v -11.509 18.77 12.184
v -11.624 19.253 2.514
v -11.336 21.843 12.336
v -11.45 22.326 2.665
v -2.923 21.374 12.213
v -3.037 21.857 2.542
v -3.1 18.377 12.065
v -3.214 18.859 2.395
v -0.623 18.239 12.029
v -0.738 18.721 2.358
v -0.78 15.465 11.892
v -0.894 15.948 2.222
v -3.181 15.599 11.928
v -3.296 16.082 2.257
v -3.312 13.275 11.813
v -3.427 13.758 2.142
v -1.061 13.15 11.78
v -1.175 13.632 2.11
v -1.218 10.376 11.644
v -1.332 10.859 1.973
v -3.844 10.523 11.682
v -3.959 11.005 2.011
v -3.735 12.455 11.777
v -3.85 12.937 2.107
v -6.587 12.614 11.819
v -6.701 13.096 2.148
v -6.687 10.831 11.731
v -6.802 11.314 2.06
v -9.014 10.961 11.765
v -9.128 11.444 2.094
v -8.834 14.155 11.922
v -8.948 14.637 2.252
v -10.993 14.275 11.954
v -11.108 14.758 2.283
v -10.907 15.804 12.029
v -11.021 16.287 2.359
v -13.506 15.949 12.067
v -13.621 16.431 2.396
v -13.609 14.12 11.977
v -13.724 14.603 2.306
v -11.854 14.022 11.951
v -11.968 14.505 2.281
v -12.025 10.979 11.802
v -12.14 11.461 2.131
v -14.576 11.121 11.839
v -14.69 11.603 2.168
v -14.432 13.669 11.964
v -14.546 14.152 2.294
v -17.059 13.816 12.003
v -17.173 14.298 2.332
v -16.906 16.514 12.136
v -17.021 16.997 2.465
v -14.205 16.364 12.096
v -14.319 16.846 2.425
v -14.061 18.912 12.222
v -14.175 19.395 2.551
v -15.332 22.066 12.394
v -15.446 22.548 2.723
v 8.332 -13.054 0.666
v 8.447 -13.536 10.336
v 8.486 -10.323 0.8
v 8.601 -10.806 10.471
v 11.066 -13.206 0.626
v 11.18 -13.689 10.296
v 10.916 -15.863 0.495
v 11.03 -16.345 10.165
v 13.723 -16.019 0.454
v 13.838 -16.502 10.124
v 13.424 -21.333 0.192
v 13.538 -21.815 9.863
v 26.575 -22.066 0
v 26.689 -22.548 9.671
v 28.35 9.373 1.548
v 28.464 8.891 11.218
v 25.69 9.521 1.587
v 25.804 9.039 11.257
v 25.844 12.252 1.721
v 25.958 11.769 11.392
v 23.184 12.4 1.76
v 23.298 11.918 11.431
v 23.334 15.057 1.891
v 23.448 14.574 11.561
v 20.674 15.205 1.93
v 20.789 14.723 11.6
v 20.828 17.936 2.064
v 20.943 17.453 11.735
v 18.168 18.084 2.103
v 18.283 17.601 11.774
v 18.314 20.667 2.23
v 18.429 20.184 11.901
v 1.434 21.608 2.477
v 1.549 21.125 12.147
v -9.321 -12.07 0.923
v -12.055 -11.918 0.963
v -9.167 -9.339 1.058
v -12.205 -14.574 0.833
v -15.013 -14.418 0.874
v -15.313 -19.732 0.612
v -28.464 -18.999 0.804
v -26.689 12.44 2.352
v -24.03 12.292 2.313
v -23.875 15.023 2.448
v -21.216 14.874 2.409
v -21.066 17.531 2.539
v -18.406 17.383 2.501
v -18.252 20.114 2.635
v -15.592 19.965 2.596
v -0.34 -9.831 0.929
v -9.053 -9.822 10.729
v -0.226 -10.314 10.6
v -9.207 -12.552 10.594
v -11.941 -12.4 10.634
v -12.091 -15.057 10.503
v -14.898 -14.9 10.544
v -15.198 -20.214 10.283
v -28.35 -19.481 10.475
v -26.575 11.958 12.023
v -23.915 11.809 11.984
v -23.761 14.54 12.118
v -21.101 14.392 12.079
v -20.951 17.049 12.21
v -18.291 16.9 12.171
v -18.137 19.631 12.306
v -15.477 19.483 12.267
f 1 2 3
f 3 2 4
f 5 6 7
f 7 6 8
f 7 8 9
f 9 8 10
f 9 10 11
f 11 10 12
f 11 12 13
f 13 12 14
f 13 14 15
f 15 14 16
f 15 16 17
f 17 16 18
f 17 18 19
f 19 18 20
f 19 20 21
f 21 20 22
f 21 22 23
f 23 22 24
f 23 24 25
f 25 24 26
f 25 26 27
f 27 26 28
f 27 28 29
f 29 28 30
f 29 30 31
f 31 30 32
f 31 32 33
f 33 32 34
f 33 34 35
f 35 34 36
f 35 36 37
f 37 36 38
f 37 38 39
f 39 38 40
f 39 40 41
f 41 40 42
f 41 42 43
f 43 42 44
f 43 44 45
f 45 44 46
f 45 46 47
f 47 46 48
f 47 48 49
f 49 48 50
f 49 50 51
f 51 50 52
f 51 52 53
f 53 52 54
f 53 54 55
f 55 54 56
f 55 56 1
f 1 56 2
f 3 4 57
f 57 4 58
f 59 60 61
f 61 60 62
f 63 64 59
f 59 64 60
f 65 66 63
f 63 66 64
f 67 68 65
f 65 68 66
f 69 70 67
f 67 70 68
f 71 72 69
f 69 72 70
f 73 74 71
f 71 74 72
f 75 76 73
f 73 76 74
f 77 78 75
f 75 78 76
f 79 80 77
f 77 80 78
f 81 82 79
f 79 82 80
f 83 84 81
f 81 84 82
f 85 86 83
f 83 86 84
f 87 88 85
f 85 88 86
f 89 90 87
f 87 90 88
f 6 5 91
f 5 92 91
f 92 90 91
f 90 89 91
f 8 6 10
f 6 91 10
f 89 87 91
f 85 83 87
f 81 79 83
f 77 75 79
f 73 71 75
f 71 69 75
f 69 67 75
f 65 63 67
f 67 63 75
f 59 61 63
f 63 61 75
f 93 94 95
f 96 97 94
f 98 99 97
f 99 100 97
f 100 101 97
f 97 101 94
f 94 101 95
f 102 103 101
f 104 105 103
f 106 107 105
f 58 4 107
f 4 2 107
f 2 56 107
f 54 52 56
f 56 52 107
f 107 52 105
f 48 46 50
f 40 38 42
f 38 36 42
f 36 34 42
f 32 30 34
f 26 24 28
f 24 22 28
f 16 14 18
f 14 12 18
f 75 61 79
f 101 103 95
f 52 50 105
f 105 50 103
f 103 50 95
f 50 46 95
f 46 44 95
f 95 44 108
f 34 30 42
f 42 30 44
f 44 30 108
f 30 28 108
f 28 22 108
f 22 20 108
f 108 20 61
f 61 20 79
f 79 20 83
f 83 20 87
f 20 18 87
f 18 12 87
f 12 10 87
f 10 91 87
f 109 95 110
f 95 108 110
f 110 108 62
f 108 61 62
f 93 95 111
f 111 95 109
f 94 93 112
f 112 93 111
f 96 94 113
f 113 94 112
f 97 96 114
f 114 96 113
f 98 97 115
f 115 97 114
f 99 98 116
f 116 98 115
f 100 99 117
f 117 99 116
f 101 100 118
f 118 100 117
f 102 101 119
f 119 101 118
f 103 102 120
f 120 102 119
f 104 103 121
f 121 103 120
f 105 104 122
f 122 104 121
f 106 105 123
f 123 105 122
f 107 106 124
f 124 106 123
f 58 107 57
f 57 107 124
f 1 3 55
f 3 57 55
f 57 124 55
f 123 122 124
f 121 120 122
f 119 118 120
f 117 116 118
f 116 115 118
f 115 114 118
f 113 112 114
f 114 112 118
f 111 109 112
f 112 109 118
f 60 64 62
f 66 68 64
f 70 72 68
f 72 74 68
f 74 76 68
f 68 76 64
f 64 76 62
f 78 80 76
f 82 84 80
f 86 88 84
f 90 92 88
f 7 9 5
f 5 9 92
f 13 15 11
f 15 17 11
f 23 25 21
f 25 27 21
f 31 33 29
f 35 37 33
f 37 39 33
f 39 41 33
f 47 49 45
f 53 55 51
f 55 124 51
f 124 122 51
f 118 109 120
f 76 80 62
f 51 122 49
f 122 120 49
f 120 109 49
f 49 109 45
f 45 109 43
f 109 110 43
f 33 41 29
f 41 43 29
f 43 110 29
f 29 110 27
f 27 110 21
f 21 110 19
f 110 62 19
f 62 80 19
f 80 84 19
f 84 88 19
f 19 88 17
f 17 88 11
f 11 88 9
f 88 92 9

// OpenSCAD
module Default() {
	polyhedron(
		points=[
			[-11.50916, 18.77022, 12.18432],
			[-11.62358, 19.25276, 2.513634],
			[-11.3357, 21.84316, 12.33559],
			[-11.3357, 21.84316, 12.33559],
			[-11.62358, 19.25276, 2.513634],
			[-11.45013, 22.3257, 2.664909],
			[-2.922625, 21.37432, 12.21266],
			[-3.037051, 21.85686, 2.54197],
			[-3.099726, 18.37678, 12.06519],
			[-3.099726, 18.37678, 12.06519],
			[-3.037051, 21.85686, 2.54197],
			[-3.214152, 18.85932, 2.394501],
			[-3.099726, 18.37678, 12.06519],
			[-3.214152, 18.85932, 2.394501],
			[-0.6231963, 18.23877, 12.029],
			[-0.6231963, 18.23877, 12.029],
			[-3.214152, 18.85932, 2.394501],
			[-0.737622, 18.72131, 2.358312],
			[-0.6231963, 18.23877, 12.029],
			[-0.737622, 18.72131, 2.358312],
			[-0.7797541, 15.46522, 11.89246],
			[-0.7797541, 15.46522, 11.89246],
			[-0.737622, 18.72131, 2.358312],
			[-0.8941798, 15.94775, 2.221773],
			[-0.7797541, 15.46522, 11.89246],
			[-0.8941798, 15.94775, 2.221773],
			[-3.181229, 15.59905, 11.92755],
			[-3.181229, 15.59905, 11.92755],
			[-0.8941798, 15.94775, 2.221773],
			[-3.295654, 16.08158, 2.256864],
			[-3.181229, 15.59905, 11.92755],
			[-3.295654, 16.08158, 2.256864],
			[-3.312399, 13.27526, 11.81315],
			[-3.312399, 13.27526, 11.81315],
			[-3.295654, 16.08158, 2.256864],
			[-3.426824, 13.75779, 2.142467],
			[-3.312399, 13.27526, 11.81315],
			[-3.426824, 13.75779, 2.142467],
			[-1.06102, 13.1498, 11.78025],
			[-1.06102, 13.1498, 11.78025],
			[-3.426824, 13.75779, 2.142467],
			[-1.175446, 13.63233, 2.109569],
			[-1.06102, 13.1498, 11.78025],
			[-1.175446, 13.63233, 2.109569],
			[-1.217578, 10.37624, 11.64372],
			[-1.217578, 10.37624, 11.64372],
			[-1.175446, 13.63233, 2.109569],
			[-1.332004, 10.85878, 1.973031],
			[-1.217578, 10.37624, 11.64372],
			[-1.332004, 10.85878, 1.973031],
			[-3.844204, 10.52262, 11.6821],
			[-3.844204, 10.52262, 11.6821],
			[-1.332004, 10.85878, 1.973031],
			[-3.95863, 11.00515, 2.011413],
			[-3.844204, 10.52262, 11.6821],
			[-3.95863, 11.00515, 2.011413],
			[-3.735142, 12.45474, 11.77721],
			[-3.735142, 12.45474, 11.77721],
			[-3.95863, 11.00515, 2.011413],
			[-3.849568, 12.93727, 2.106529],
			[-3.735142, 12.45474, 11.77721],
			[-3.849568, 12.93727, 2.106529],
			[-6.586897, 12.61366, 11.81889],
			[-6.586897, 12.61366, 11.81889],
			[-3.849568, 12.93727, 2.106529],
			[-6.701323, 13.09619, 2.148201],
			[-6.586897, 12.61366, 11.81889],
			[-6.701323, 13.09619, 2.148201],
			[-6.687496, 10.83147, 11.73115],
			[-6.687496, 10.83147, 11.73115],
			[-6.701323, 13.09619, 2.148201],
			[-6.801921, 11.314, 2.060466],
			[-6.687496, 10.83147, 11.73115],
			[-6.801921, 11.314, 2.060466],
			[-9.01393, 10.96111, 11.76515],
			[-9.01393, 10.96111, 11.76515],
			[-6.801921, 11.314, 2.060466],
			[-9.128356, 11.44365, 2.094462],
			[-9.01393, 10.96111, 11.76515],
			[-9.128356, 11.44365, 2.094462],
			[-8.833666, 14.15463, 11.92236],
			[-8.833666, 14.15463, 11.92236],
			[-9.128356, 11.44365, 2.094462],
			[-8.948092, 14.63717, 2.251675],
			[-8.833666, 14.15463, 11.92236],
			[-8.948092, 14.63717, 2.251675],
			[-10.99328, 14.27498, 11.95392],
			[-10.99328, 14.27498, 11.95392],
			[-8.948092, 14.63717, 2.251675],
			[-11.1077, 14.75752, 2.283233],
			[-10.99328, 14.27498, 11.95392],
			[-11.1077, 14.75752, 2.283233],
			[-10.90697, 15.80399, 12.02919],
			[-10.90697, 15.80399, 12.02919],
			[-11.1077, 14.75752, 2.283233],
			[-11.0214, 16.28653, 2.358504],
			[-10.90697, 15.80399, 12.02919],
			[-11.0214, 16.28653, 2.358504],
			[-13.50623, 15.94884, 12.06717],
			[-13.50623, 15.94884, 12.06717],
			[-11.0214, 16.28653, 2.358504],
			[-13.62066, 16.43138, 2.396487],
			[-13.50623, 15.94884, 12.06717],
			[-13.62066, 16.43138, 2.396487],
			[-13.60946, 14.11998, 11.97714],
			[-13.60946, 14.11998, 11.97714],
			[-13.62066, 16.43138, 2.396487],
			[-13.72389, 14.60252, 2.306454],
			[-13.60946, 14.11998, 11.97714],
			[-13.72389, 14.60252, 2.306454],
			[-11.85356, 14.02213, 11.95148],
			[-11.85356, 14.02213, 11.95148],
			[-13.72389, 14.60252, 2.306454],
			[-11.96799, 14.50467, 2.280796],
			[-11.85356, 14.02213, 11.95148],
			[-11.96799, 14.50467, 2.280796],
			[-12.02536, 10.97853, 11.80165],
			[-12.02536, 10.97853, 11.80165],
			[-11.96799, 14.50467, 2.280796],
			[-12.13979, 11.46107, 2.130963],
			[-12.02536, 10.97853, 11.80165],
			[-12.13979, 11.46107, 2.130963],
			[-14.57583, 11.12066, 11.83892],
			[-14.57583, 11.12066, 11.83892],
			[-12.13979, 11.46107, 2.130963],
			[-14.69026, 11.6032, 2.168232],
			[-14.57583, 11.12066, 11.83892],
			[-14.69026, 11.6032, 2.168232],
			[-14.43197, 13.66933, 11.96438],
			[-14.43197, 13.66933, 11.96438],
			[-14.69026, 11.6032, 2.168232],
			[-14.54639, 14.15187, 2.2937],
			[-14.43197, 13.66933, 11.96438],
			[-14.54639, 14.15187, 2.2937],
			[-17.05859, 13.81571, 12.00277],
			[-17.05859, 13.81571, 12.00277],
			[-14.54639, 14.15187, 2.2937],
			[-17.17302, 14.29824, 2.332083],
			[-17.05859, 13.81571, 12.00277],
			[-17.17302, 14.29824, 2.332083],
			[-16.90626, 16.51431, 12.13562],
			[-16.90626, 16.51431, 12.13562],
			[-17.17302, 14.29824, 2.332083],
			[-17.02069, 16.99684, 2.464931],
			[-16.90626, 16.51431, 12.13562],
			[-17.02069, 16.99684, 2.464931],
			[-14.20459, 16.36375, 12.09614],
			[-14.20459, 16.36375, 12.09614],
			[-17.02069, 16.99684, 2.464931],
			[-14.31902, 16.84628, 2.425452],
			[-14.20459, 16.36375, 12.09614],
			[-14.31902, 16.84628, 2.425452],
			[-14.06073, 18.91242, 12.2216],
			[-14.06073, 18.91242, 12.2216],
			[-14.31902, 16.84628, 2.425452],
			[-14.17515, 19.39495, 2.55092],
			[-14.06073, 18.91242, 12.2216],
			[-14.17515, 19.39495, 2.55092],
			[-11.50916, 18.77022, 12.18432],
			[-11.50916, 18.77022, 12.18432],
			[-14.17515, 19.39495, 2.55092],
			[-11.62358, 19.25276, 2.513634],
			[-11.3357, 21.84316, 12.33559],
			[-11.45013, 22.3257, 2.664909],
			[-15.33155, 22.06584, 12.39399],
			[-15.33155, 22.06584, 12.39399],
			[-11.45013, 22.3257, 2.664909],
			[-15.44597, 22.54837, 2.7233],
			[8.332091, -13.05371, 0.6655284],
			[8.446517, -13.53625, 10.33621],
			[8.486225, -10.3231, 0.7999527],
			[8.486225, -10.3231, 0.7999527],
			[8.446517, -13.53625, 10.33621],
			[8.600651, -10.80564, 10.47064],
			[11.06582, -13.20605, 0.6255808],
			[11.18025, -13.68859, 10.29627],
			[8.332091, -13.05371, 0.6655284],
			[8.332091, -13.05371, 0.6655284],
			[11.18025, -13.68859, 10.29627],
			[8.446517, -13.53625, 10.33621],
			[10.91586, -15.86287, 0.4947891],
			[11.03028, -16.3454, 10.16547],
			[11.06582, -13.20605, 0.6255808],
			[11.06582, -13.20605, 0.6255808],
			[11.03028, -16.3454, 10.16547],
			[11.18025, -13.68859, 10.29627],
			[13.72346, -16.01933, 0.4537621],
			[13.83788, -16.50186, 10.12445],
			[10.91586, -15.86287, 0.4947891],
			[10.91586, -15.86287, 0.4947891],
			[13.83788, -16.50186, 10.12445],
			[11.03028, -16.3454, 10.16547],
			[13.42352, -21.33295, 0.1921795],
			[13.53795, -21.81548, 9.862865],
			[13.72346, -16.01933, 0.4537621],
			[13.72346, -16.01933, 0.4537621],
			[13.53795, -21.81548, 9.862865],
			[13.83788, -16.50186, 10.12445],
			[26.57495, -22.06584, 0.0],
			[26.68937, -22.54837, 9.670686],
			[13.42352, -21.33295, 0.1921795],
			[13.42352, -21.33295, 0.1921795],
			[26.68937, -22.54837, 9.670686],
			[13.53795, -21.81548, 9.862865],
			[28.34957, 9.37307, 1.547698],
			[28.46399, 8.890535, 11.21838],
			[26.57495, -22.06584, 0.0],
			[26.57495, -22.06584, 0.0],
			[28.46399, 8.890535, 11.21838],
			[26.68937, -22.54837, 9.670686],
			[25.68973, 9.521295, 1.586566],
			[25.80416, 9.038761, 11.25725],
			[28.34957, 9.37307, 1.547698],
			[28.34957, 9.37307, 1.547698],
			[25.80416, 9.038761, 11.25725],
			[28.46399, 8.890535, 11.21838],
			[25.84387, 12.25191, 1.72099],
			[25.95829, 11.76937, 11.39168],
			[25.68973, 9.521295, 1.586566],
			[25.68973, 9.521295, 1.586566],
			[25.95829, 11.76937, 11.39168],
			[25.80416, 9.038761, 11.25725],
			[23.18403, 12.40013, 1.759858],
			[23.29846, 11.9176, 11.43054],
			[25.84387, 12.25191, 1.72099],
			[25.84387, 12.25191, 1.72099],
			[23.29846, 11.9176, 11.43054],
			[25.95829, 11.76937, 11.39168],
			[23.334, 15.05694, 1.890649],
			[23.44842, 14.5744, 11.56133],
			[23.18403, 12.40013, 1.759858],
			[23.18403, 12.40013, 1.759858],
			[23.44842, 14.5744, 11.56133],
			[23.29846, 11.9176, 11.43054],
			[20.67416, 15.20516, 1.929517],
			[20.78859, 14.72263, 11.6002],
			[23.334, 15.05694, 1.890649],
			[23.334, 15.05694, 1.890649],
			[20.78859, 14.72263, 11.6002],
			[23.44842, 14.5744, 11.56133],
			[20.8283, 17.93577, 2.063941],
			[20.94272, 17.45324, 11.73463],
			[20.67416, 15.20516, 1.929517],
			[20.67416, 15.20516, 1.929517],
			[20.94272, 17.45324, 11.73463],
			[20.78859, 14.72263, 11.6002],
			[18.16845, 18.084, 2.102809],
			[18.28287, 17.60147, 11.7735],
			[20.8283, 17.93577, 2.063941],
			[20.8283, 17.93577, 2.063941],
			[18.28287, 17.60147, 11.7735],
			[20.94272, 17.45324, 11.73463],
			[18.31425, 20.66701, 2.229968],
			[18.42867, 20.18447, 11.90065],
			[18.16845, 18.084, 2.102809],
			[18.16845, 18.084, 2.102809],
			[18.42867, 20.18447, 11.90065],
			[18.28287, 17.60147, 11.7735],
			[-3.037051, 21.85686, 2.54197],
			[-2.922625, 21.37432, 12.21266],
			[1.434143, 21.60769, 2.476634],
			[-2.922625, 21.37432, 12.21266],
			[1.548568, 21.12516, 12.14732],
			[1.434143, 21.60769, 2.476634],
			[1.548568, 21.12516, 12.14732],
			[18.42867, 20.18447, 11.90065],
			[1.434143, 21.60769, 2.476634],
			[18.42867, 20.18447, 11.90065],
			[18.31425, 20.66701, 2.229968],
			[1.434143, 21.60769, 2.476634],
			[-3.214152, 18.85932, 2.394501],
			[-3.037051, 21.85686, 2.54197],
			[-0.737622, 18.72131, 2.358312],
			[-3.037051, 21.85686, 2.54197],
			[1.434143, 21.60769, 2.476634],
			[-0.737622, 18.72131, 2.358312],
			[18.31425, 20.66701, 2.229968],
			[18.16845, 18.084, 2.102809],
			[1.434143, 21.60769, 2.476634],
			[20.8283, 17.93577, 2.063941],
			[20.67416, 15.20516, 1.929517],
			[18.16845, 18.084, 2.102809],
			[23.334, 15.05694, 1.890649],
			[23.18403, 12.40013, 1.759858],
			[20.67416, 15.20516, 1.929517],
			[25.84387, 12.25191, 1.72099],
			[25.68973, 9.521295, 1.586566],
			[23.18403, 12.40013, 1.759858],
			[28.34957, 9.37307, 1.547698],
			[26.57495, -22.06584, 0.0],
			[25.68973, 9.521295, 1.586566],
			[26.57495, -22.06584, 0.0],
			[13.42352, -21.33295, 0.1921795],
			[25.68973, 9.521295, 1.586566],
			[13.42352, -21.33295, 0.1921795],
			[13.72346, -16.01933, 0.4537621],
			[25.68973, 9.521295, 1.586566],
			[10.91586, -15.86287, 0.4947891],
			[11.06582, -13.20605, 0.6255808],
			[13.72346, -16.01933, 0.4537621],
			[13.72346, -16.01933, 0.4537621],
			[11.06582, -13.20605, 0.6255808],
			[25.68973, 9.521295, 1.586566],
			[8.332091, -13.05371, 0.6655284],
			[8.486225, -10.3231, 0.7999527],
			[11.06582, -13.20605, 0.6255808],
			[11.06582, -13.20605, 0.6255808],
			[8.486225, -10.3231, 0.7999527],
			[25.68973, 9.521295, 1.586566],
			[-9.321322, -12.06993, 0.9234946],
			[-12.05505, -11.91759, 0.9634421],
			[-9.167189, -9.339328, 1.057919],
			[-12.20502, -14.57441, 0.8326504],
			[-15.01262, -14.41795, 0.8736775],
			[-12.05505, -11.91759, 0.9634421],
			[-15.31256, -19.73156, 0.6120948],
			[-28.46399, -18.99867, 0.8042744],
			[-15.01262, -14.41795, 0.8736775],
			[-28.46399, -18.99867, 0.8042744],
			[-26.68937, 12.44024, 2.351972],
			[-15.01262, -14.41795, 0.8736775],
			[-26.68937, 12.44024, 2.351972],
			[-24.02953, 12.29201, 2.313105],
			[-15.01262, -14.41795, 0.8736775],
			[-15.01262, -14.41795, 0.8736775],
			[-24.02953, 12.29201, 2.313105],
			[-12.05505, -11.91759, 0.9634421],
			[-12.05505, -11.91759, 0.9634421],
			[-24.02953, 12.29201, 2.313105],
			[-9.167189, -9.339328, 1.057919],
			[-23.8754, 15.02262, 2.447529],
			[-21.21556, 14.8744, 2.408661],
			[-24.02953, 12.29201, 2.313105],
			[-21.06559, 17.53121, 2.539453],
			[-18.40575, 17.38298, 2.500585],
			[-21.21556, 14.8744, 2.408661],
			[-18.25162, 20.11359, 2.635009],
			[-15.59177, 19.96537, 2.596142],
			[-18.40575, 17.38298, 2.500585],
			[-15.44597, 22.54837, 2.7233],
			[-11.45013, 22.3257, 2.664909],
			[-15.59177, 19.96537, 2.596142],
			[-11.45013, 22.3257, 2.664909],
			[-11.62358, 19.25276, 2.513634],
			[-15.59177, 19.96537, 2.596142],
			[-11.62358, 19.25276, 2.513634],
			[-14.17515, 19.39495, 2.55092],
			[-15.59177, 19.96537, 2.596142],
			[-14.31902, 16.84628, 2.425452],
			[-17.02069, 16.99684, 2.464931],
			[-14.17515, 19.39495, 2.55092],
			[-14.17515, 19.39495, 2.55092],
			[-17.02069, 16.99684, 2.464931],
			[-15.59177, 19.96537, 2.596142],
			[-15.59177, 19.96537, 2.596142],
			[-17.02069, 16.99684, 2.464931],
			[-18.40575, 17.38298, 2.500585],
			[-14.54639, 14.15187, 2.2937],
			[-14.69026, 11.6032, 2.168232],
			[-17.17302, 14.29824, 2.332083],
			[-13.72389, 14.60252, 2.306454],
			[-13.62066, 16.43138, 2.396487],
			[-11.96799, 14.50467, 2.280796],
			[-13.62066, 16.43138, 2.396487],
			[-11.0214, 16.28653, 2.358504],
			[-11.96799, 14.50467, 2.280796],
			[-11.0214, 16.28653, 2.358504],
			[-11.1077, 14.75752, 2.283233],
			[-11.96799, 14.50467, 2.280796],
			[-8.948092, 14.63717, 2.251675],
			[-9.128356, 11.44365, 2.094462],
			[-11.1077, 14.75752, 2.283233],
			[-6.701323, 13.09619, 2.148201],
			[-3.849568, 12.93727, 2.106529],
			[-6.801921, 11.314, 2.060466],
			[-3.849568, 12.93727, 2.106529],
			[-3.95863, 11.00515, 2.011413],
			[-6.801921, 11.314, 2.060466],
			[-3.426824, 13.75779, 2.142467],
			[-3.295654, 16.08158, 2.256864],
			[-1.175446, 13.63233, 2.109569],
			[-3.295654, 16.08158, 2.256864],
			[-0.8941798, 15.94775, 2.221773],
			[-1.175446, 13.63233, 2.109569],
			[25.68973, 9.521295, 1.586566],
			[8.486225, -10.3231, 0.7999527],
			[23.18403, 12.40013, 1.759858],
			[-24.02953, 12.29201, 2.313105],
			[-21.21556, 14.8744, 2.408661],
			[-9.167189, -9.339328, 1.057919],
			[-17.02069, 16.99684, 2.464931],
			[-17.17302, 14.29824, 2.332083],
			[-18.40575, 17.38298, 2.500585],
			[-18.40575, 17.38298, 2.500585],
			[-17.17302, 14.29824, 2.332083],
			[-21.21556, 14.8744, 2.408661],
			[-21.21556, 14.8744, 2.408661],
			[-17.17302, 14.29824, 2.332083],
			[-9.167189, -9.339328, 1.057919],
			[-17.17302, 14.29824, 2.332083],
			[-14.69026, 11.6032, 2.168232],
			[-9.167189, -9.339328, 1.057919],
			[-14.69026, 11.6032, 2.168232],
			[-12.13979, 11.46107, 2.130963],
			[-9.167189, -9.339328, 1.057919],
			[-9.167189, -9.339328, 1.057919],
			[-12.13979, 11.46107, 2.130963],
			[-0.340478, -9.831216, 0.9289358],
			[-11.1077, 14.75752, 2.283233],
			[-9.128356, 11.44365, 2.094462],
			[-11.96799, 14.50467, 2.280796],
			[-11.96799, 14.50467, 2.280796],
			[-9.128356, 11.44365, 2.094462],
			[-12.13979, 11.46107, 2.130963],
			[-12.13979, 11.46107, 2.130963],
			[-9.128356, 11.44365, 2.094462],
			[-0.340478, -9.831216, 0.9289358],
			[-9.128356, 11.44365, 2.094462],
			[-6.801921, 11.314, 2.060466],
			[-0.340478, -9.831216, 0.9289358],
			[-6.801921, 11.314, 2.060466],
			[-3.95863, 11.00515, 2.011413],
			[-0.340478, -9.831216, 0.9289358],
			[-3.95863, 11.00515, 2.011413],
			[-1.332004, 10.85878, 1.973031],
			[-0.340478, -9.831216, 0.9289358],
			[-0.340478, -9.831216, 0.9289358],
			[-1.332004, 10.85878, 1.973031],
			[8.486225, -10.3231, 0.7999527],
			[8.486225, -10.3231, 0.7999527],
			[-1.332004, 10.85878, 1.973031],
			[23.18403, 12.40013, 1.759858],
			[23.18403, 12.40013, 1.759858],
			[-1.332004, 10.85878, 1.973031],
			[20.67416, 15.20516, 1.929517],
			[20.67416, 15.20516, 1.929517],
			[-1.332004, 10.85878, 1.973031],
			[18.16845, 18.084, 2.102809],
			[-1.332004, 10.85878, 1.973031],
			[-1.175446, 13.63233, 2.109569],
			[18.16845, 18.084, 2.102809],
			[-1.175446, 13.63233, 2.109569],
			[-0.8941798, 15.94775, 2.221773],
			[18.16845, 18.084, 2.102809],
			[-0.8941798, 15.94775, 2.221773],
			[-0.737622, 18.72131, 2.358312],
			[18.16845, 18.084, 2.102809],
			[-0.737622, 18.72131, 2.358312],
			[1.434143, 21.60769, 2.476634],
			[18.16845, 18.084, 2.102809],
			[-9.052763, -9.821862, 10.7286],
			[-9.167189, -9.339328, 1.057919],
			[-0.2260523, -10.31375, 10.59962],
			[-9.167189, -9.339328, 1.057919],
			[-0.340478, -9.831216, 0.9289358],
			[-0.2260523, -10.31375, 10.59962],
			[-0.2260523, -10.31375, 10.59962],
			[-0.340478, -9.831216, 0.9289358],
			[8.600651, -10.80564, 10.47064],
			[-0.340478, -9.831216, 0.9289358],
			[8.486225, -10.3231, 0.7999527],
			[8.600651, -10.80564, 10.47064],
			[-9.321322, -12.06993, 0.9234946],
			[-9.167189, -9.339328, 1.057919],
			[-9.206897, -12.55247, 10.59418],
			[-9.206897, -12.55247, 10.59418],
			[-9.167189, -9.339328, 1.057919],
			[-9.052763, -9.821862, 10.7286],
			[-12.05505, -11.91759, 0.9634421],
			[-9.321322, -12.06993, 0.9234946],
			[-11.94062, -12.40013, 10.63413],
			[-11.94062, -12.40013, 10.63413],
			[-9.321322, -12.06993, 0.9234946],
			[-9.206897, -12.55247, 10.59418],
			[-12.20502, -14.57441, 0.8326504],
			[-12.05505, -11.91759, 0.9634421],
			[-12.09059, -15.05694, 10.50334],
			[-12.09059, -15.05694, 10.50334],
			[-12.05505, -11.91759, 0.9634421],
			[-11.94062, -12.40013, 10.63413],
			[-15.01262, -14.41795, 0.8736775],
			[-12.20502, -14.57441, 0.8326504],
			[-14.8982, -14.90048, 10.54436],
			[-14.8982, -14.90048, 10.54436],
			[-12.20502, -14.57441, 0.8326504],
			[-12.09059, -15.05694, 10.50334],
			[-15.31256, -19.73156, 0.6120948],
			[-15.01262, -14.41795, 0.8736775],
			[-15.19813, -20.2141, 10.28278],
			[-15.19813, -20.2141, 10.28278],
			[-15.01262, -14.41795, 0.8736775],
			[-14.8982, -14.90048, 10.54436],
			[-28.46399, -18.99867, 0.8042744],
			[-15.31256, -19.73156, 0.6120948],
			[-28.34957, -19.4812, 10.47496],
			[-28.34957, -19.4812, 10.47496],
			[-15.31256, -19.73156, 0.6120948],
			[-15.19813, -20.2141, 10.28278],
			[-26.68937, 12.44024, 2.351972],
			[-28.46399, -18.99867, 0.8042744],
			[-26.57495, 11.95771, 12.02266],
			[-26.57495, 11.95771, 12.02266],
			[-28.46399, -18.99867, 0.8042744],
			[-28.34957, -19.4812, 10.47496],
			[-24.02953, 12.29201, 2.313105],
			[-26.68937, 12.44024, 2.351972],
			[-23.9151, 11.80948, 11.98379],
			[-23.9151, 11.80948, 11.98379],
			[-26.68937, 12.44024, 2.351972],
			[-26.57495, 11.95771, 12.02266],
			[-23.8754, 15.02262, 2.447529],
			[-24.02953, 12.29201, 2.313105],
			[-23.76097, 14.54009, 12.11821],
			[-23.76097, 14.54009, 12.11821],
			[-24.02953, 12.29201, 2.313105],
			[-23.9151, 11.80948, 11.98379],
			[-21.21556, 14.8744, 2.408661],
			[-23.8754, 15.02262, 2.447529],
			[-21.10114, 14.39186, 12.07935],
			[-21.10114, 14.39186, 12.07935],
			[-23.8754, 15.02262, 2.447529],
			[-23.76097, 14.54009, 12.11821],
			[-21.06559, 17.53121, 2.539453],
			[-21.21556, 14.8744, 2.408661],
			[-20.95117, 17.04867, 12.21014],
			[-20.95117, 17.04867, 12.21014],
			[-21.21556, 14.8744, 2.408661],
			[-21.10114, 14.39186, 12.07935],
			[-18.40575, 17.38298, 2.500585],
			[-21.06559, 17.53121, 2.539453],
			[-18.29132, 16.90045, 12.17127],
			[-18.29132, 16.90045, 12.17127],
			[-21.06559, 17.53121, 2.539453],
			[-20.95117, 17.04867, 12.21014],
			[-18.25162, 20.11359, 2.635009],
			[-18.40575, 17.38298, 2.500585],
			[-18.13719, 19.63106, 12.3057],
			[-18.13719, 19.63106, 12.3057],
			[-18.40575, 17.38298, 2.500585],
			[-18.29132, 16.90045, 12.17127],
			[-15.59177, 19.96537, 2.596142],
			[-18.25162, 20.11359, 2.635009],
			[-15.47735, 19.48283, 12.26683],
			[-15.47735, 19.48283, 12.26683],
			[-18.25162, 20.11359, 2.635009],
			[-18.13719, 19.63106, 12.3057],
			[-15.44597, 22.54837, 2.7233],
			[-15.59177, 19.96537, 2.596142],
			[-15.33155, 22.06584, 12.39399],
			[-15.33155, 22.06584, 12.39399],
			[-15.59177, 19.96537, 2.596142],
			[-15.47735, 19.48283, 12.26683],
			[-11.50916, 18.77022, 12.18432],
			[-11.3357, 21.84316, 12.33559],
			[-14.06073, 18.91242, 12.2216],
			[-11.3357, 21.84316, 12.33559],
			[-15.33155, 22.06584, 12.39399],
			[-14.06073, 18.91242, 12.2216],
			[-15.33155, 22.06584, 12.39399],
			[-15.47735, 19.48283, 12.26683],
			[-14.06073, 18.91242, 12.2216],
			[-18.13719, 19.63106, 12.3057],
			[-18.29132, 16.90045, 12.17127],
			[-15.47735, 19.48283, 12.26683],
			[-20.95117, 17.04867, 12.21014],
			[-21.10114, 14.39186, 12.07935],
			[-18.29132, 16.90045, 12.17127],
			[-23.76097, 14.54009, 12.11821],
			[-23.9151, 11.80948, 11.98379],
			[-21.10114, 14.39186, 12.07935],
			[-26.57495, 11.95771, 12.02266],
			[-28.34957, -19.4812, 10.47496],
			[-23.9151, 11.80948, 11.98379],
			[-28.34957, -19.4812, 10.47496],
			[-15.19813, -20.2141, 10.28278],
			[-23.9151, 11.80948, 11.98379],
			[-15.19813, -20.2141, 10.28278],
			[-14.8982, -14.90048, 10.54436],
			[-23.9151, 11.80948, 11.98379],
			[-12.09059, -15.05694, 10.50334],
			[-11.94062, -12.40013, 10.63413],
			[-14.8982, -14.90048, 10.54436],
			[-14.8982, -14.90048, 10.54436],
			[-11.94062, -12.40013, 10.63413],
			[-23.9151, 11.80948, 11.98379],
			[-9.206897, -12.55247, 10.59418],
			[-9.052763, -9.821862, 10.7286],
			[-11.94062, -12.40013, 10.63413],
			[-11.94062, -12.40013, 10.63413],
			[-9.052763, -9.821862, 10.7286],
			[-23.9151, 11.80948, 11.98379],
			[8.446517, -13.53625, 10.33621],
			[11.18025, -13.68859, 10.29627],
			[8.600651, -10.80564, 10.47064],
			[11.03028, -16.3454, 10.16547],
			[13.83788, -16.50186, 10.12445],
			[11.18025, -13.68859, 10.29627],
			[13.53795, -21.81548, 9.862865],
			[26.68937, -22.54837, 9.670686],
			[13.83788, -16.50186, 10.12445],
			[26.68937, -22.54837, 9.670686],
			[28.46399, 8.890535, 11.21838],
			[13.83788, -16.50186, 10.12445],
			[28.46399, 8.890535, 11.21838],
			[25.80416, 9.038761, 11.25725],
			[13.83788, -16.50186, 10.12445],
			[13.83788, -16.50186, 10.12445],
			[25.80416, 9.038761, 11.25725],
			[11.18025, -13.68859, 10.29627],
			[11.18025, -13.68859, 10.29627],
			[25.80416, 9.038761, 11.25725],
			[8.600651, -10.80564, 10.47064],
			[25.95829, 11.76937, 11.39168],
			[23.29846, 11.9176, 11.43054],
			[25.80416, 9.038761, 11.25725],
			[23.44842, 14.5744, 11.56133],
			[20.78859, 14.72263, 11.6002],
			[23.29846, 11.9176, 11.43054],
			[20.94272, 17.45324, 11.73463],
			[18.28287, 17.60147, 11.7735],
			[20.78859, 14.72263, 11.6002],
			[18.42867, 20.18447, 11.90065],
			[1.548568, 21.12516, 12.14732],
			[18.28287, 17.60147, 11.7735],
			[-3.099726, 18.37678, 12.06519],
			[-0.6231963, 18.23877, 12.029],
			[-2.922625, 21.37432, 12.21266],
			[-2.922625, 21.37432, 12.21266],
			[-0.6231963, 18.23877, 12.029],
			[1.548568, 21.12516, 12.14732],
			[-3.181229, 15.59905, 11.92755],
			[-3.312399, 13.27526, 11.81315],
			[-0.7797541, 15.46522, 11.89246],
			[-3.312399, 13.27526, 11.81315],
			[-1.06102, 13.1498, 11.78025],
			[-0.7797541, 15.46522, 11.89246],
			[-3.735142, 12.45474, 11.77721],
			[-6.586897, 12.61366, 11.81889],
			[-3.844204, 10.52262, 11.6821],
			[-6.586897, 12.61366, 11.81889],
			[-6.687496, 10.83147, 11.73115],
			[-3.844204, 10.52262, 11.6821],
			[-8.833666, 14.15463, 11.92236],
			[-10.99328, 14.27498, 11.95392],
			[-9.01393, 10.96111, 11.76515],
			[-10.90697, 15.80399, 12.02919],
			[-13.50623, 15.94884, 12.06717],
			[-10.99328, 14.27498, 11.95392],
			[-13.50623, 15.94884, 12.06717],
			[-13.60946, 14.11998, 11.97714],
			[-10.99328, 14.27498, 11.95392],
			[-13.60946, 14.11998, 11.97714],
			[-11.85356, 14.02213, 11.95148],
			[-10.99328, 14.27498, 11.95392],
			[-14.43197, 13.66933, 11.96438],
			[-17.05859, 13.81571, 12.00277],
			[-14.57583, 11.12066, 11.83892],
			[-14.20459, 16.36375, 12.09614],
			[-14.06073, 18.91242, 12.2216],
			[-16.90626, 16.51431, 12.13562],
			[-14.06073, 18.91242, 12.2216],
			[-15.47735, 19.48283, 12.26683],
			[-16.90626, 16.51431, 12.13562],
			[-15.47735, 19.48283, 12.26683],
			[-18.29132, 16.90045, 12.17127],
			[-16.90626, 16.51431, 12.13562],
			[-23.9151, 11.80948, 11.98379],
			[-9.052763, -9.821862, 10.7286],
			[-21.10114, 14.39186, 12.07935],
			[25.80416, 9.038761, 11.25725],
			[23.29846, 11.9176, 11.43054],
			[8.600651, -10.80564, 10.47064],
			[-16.90626, 16.51431, 12.13562],
			[-18.29132, 16.90045, 12.17127],
			[-17.05859, 13.81571, 12.00277],
			[-18.29132, 16.90045, 12.17127],
			[-21.10114, 14.39186, 12.07935],
			[-17.05859, 13.81571, 12.00277],
			[-21.10114, 14.39186, 12.07935],
			[-9.052763, -9.821862, 10.7286],
			[-17.05859, 13.81571, 12.00277],
			[-17.05859, 13.81571, 12.00277],
			[-9.052763, -9.821862, 10.7286],
			[-14.57583, 11.12066, 11.83892],
			[-14.57583, 11.12066, 11.83892],
			[-9.052763, -9.821862, 10.7286],
			[-12.02536, 10.97853, 11.80165],
			[-9.052763, -9.821862, 10.7286],
			[-0.2260523, -10.31375, 10.59962],
			[-12.02536, 10.97853, 11.80165],
			[-10.99328, 14.27498, 11.95392],
			[-11.85356, 14.02213, 11.95148],
			[-9.01393, 10.96111, 11.76515],
			[-11.85356, 14.02213, 11.95148],
			[-12.02536, 10.97853, 11.80165],
			[-9.01393, 10.96111, 11.76515],
			[-12.02536, 10.97853, 11.80165],
			[-0.2260523, -10.31375, 10.59962],
			[-9.01393, 10.96111, 11.76515],
			[-9.01393, 10.96111, 11.76515],
			[-0.2260523, -10.31375, 10.59962],
			[-6.687496, 10.83147, 11.73115],
			[-6.687496, 10.83147, 11.73115],
			[-0.2260523, -10.31375, 10.59962],
			[-3.844204, 10.52262, 11.6821],
			[-3.844204, 10.52262, 11.6821],
			[-0.2260523, -10.31375, 10.59962],
			[-1.217578, 10.37624, 11.64372],
			[-0.2260523, -10.31375, 10.59962],
			[8.600651, -10.80564, 10.47064],
			[-1.217578, 10.37624, 11.64372],
			[8.600651, -10.80564, 10.47064],
			[23.29846, 11.9176, 11.43054],
			[-1.217578, 10.37624, 11.64372],
			[23.29846, 11.9176, 11.43054],
			[20.78859, 14.72263, 11.6002],
			[-1.217578, 10.37624, 11.64372],
			[20.78859, 14.72263, 11.6002],
			[18.28287, 17.60147, 11.7735],
			[-1.217578, 10.37624, 11.64372],
			[-1.217578, 10.37624, 11.64372],
			[18.28287, 17.60147, 11.7735],
			[-1.06102, 13.1498, 11.78025],
			[-1.06102, 13.1498, 11.78025],
			[18.28287, 17.60147, 11.7735],
			[-0.7797541, 15.46522, 11.89246],
			[-0.7797541, 15.46522, 11.89246],
			[18.28287, 17.60147, 11.7735],
			[-0.6231963, 18.23877, 12.029],
			[18.28287, 17.60147, 11.7735],
			[1.548568, 21.12516, 12.14732],
			[-0.6231963, 18.23877, 12.029]
		],
		faces=[
			[0, 1, 2],
			[3, 4, 5],
			[6, 7, 8],
			[9, 10, 11],
			[12, 13, 14],
			[15, 16, 17],
			[18, 19, 20],
			[21, 22, 23],
			[24, 25, 26],
			[27, 28, 29],
			[30, 31, 32],
			[33, 34, 35],
			[36, 37, 38],
			[39, 40, 41],
			[42, 43, 44],
			[45, 46, 47],
			[48, 49, 50],
			[51, 52, 53],
			[54, 55, 56],
			[57, 58, 59],
			[60, 61, 62],
			[63, 64, 65],
			[66, 67, 68],
			[69, 70, 71],
			[72, 73, 74],
			[75, 76, 77],
			[78, 79, 80],
			[81, 82, 83],
			[84, 85, 86],
			[87, 88, 89],
			[90, 91, 92],
			[93, 94, 95],
			[96, 97, 98],
			[99, 100, 101],
			[102, 103, 104],
			[105, 106, 107],
			[108, 109, 110],
			[111, 112, 113],
			[114, 115, 116],
			[117, 118, 119],
			[120, 121, 122],
			[123, 124, 125],
			[126, 127, 128],
			[129, 130, 131],
			[132, 133, 134],
			[135, 136, 137],
			[138, 139, 140],
			[141, 142, 143],
			[144, 145, 146],
			[147, 148, 149],
			[150, 151, 152],
			[153, 154, 155],
			[156, 157, 158],
			[159, 160, 161],
			[162, 163, 164],
			[165, 166, 167],
			[168, 169, 170],
			[171, 172, 173],
			[174, 175, 176],
			[177, 178, 179],
			[180, 181, 182],
			[183, 184, 185],
			[186, 187, 188],
			[189, 190, 191],
			[192, 193, 194],
			[195, 196, 197],
			[198, 199, 200],
			[201, 202, 203],
			[204, 205, 206],
			[207, 208, 209],
			[210, 211, 212],
			[213, 214, 215],
			[216, 217, 218],
			[219, 220, 221],
			[222, 223, 224],
			[225, 226, 227],
			[228, 229, 230],
			[231, 232, 233],
			[234, 235, 236],
			[237, 238, 239],
			[240, 241, 242],
			[243, 244, 245],
			[246, 247, 248],
			[249, 250, 251],
			[252, 253, 254],
			[255, 256, 257],
			[258, 259, 260],
			[261, 262, 263],
			[264, 265, 266],
			[267, 268, 269],
			[270, 271, 272],
			[273, 274, 275],
			[276, 277, 278],
			[279, 280, 281],
			[282, 283, 284],
			[285, 286, 287],
			[288, 289, 290],
			[291, 292, 293],
			[294, 295, 296],
			[297, 298, 299],
			[300, 301, 302],
			[303, 304, 305],
			[306, 307, 308],
			[309, 310, 311],
			[312, 313, 314],
			[315, 316, 317],
			[318, 319, 320],
			[321, 322, 323],
			[324, 325, 326],
			[327, 328, 329],
			[330, 331, 332],
			[333, 334, 335],
			[336, 337, 338],
			[339, 340, 341],
			[342, 343, 344],
			[345, 346, 347],
			[348, 349, 350],
			[351, 352, 353],
			[354, 355, 356],
			[357, 358, 359],
			[360, 361, 362],
			[363, 364, 365],
			[366, 367, 368],
			[369, 370, 371],
			[372, 373, 374],
			[375, 376, 377],
			[378, 379, 380],
			[381, 382, 383],
			[384, 385, 386],
			[387, 388, 389],
			[390, 391, 392],
			[393, 394, 395],
			[396, 397, 398],
			[399, 400, 401],
			[402, 403, 404],
			[405, 406, 407],
			[408, 409, 410],
			[411, 412, 413],
			[414, 415, 416],
			[417, 418, 419],
			[420, 421, 422],
			[423, 424, 425],
			[426, 427, 428],
			[429, 430, 431],
			[432, 433, 434],
			[435, 436, 437],
			[438, 439, 440],
			[441, 442, 443],
			[444, 445, 446],
			[447, 448, 449],
			[450, 451, 452],
			[453, 454, 455],
			[456, 457, 458],
			[459, 460, 461],
			[462, 463, 464],
			[465, 466, 467],
			[468, 469, 470],
			[471, 472, 473],
			[474, 475, 476],
			[477, 478, 479],
			[480, 481, 482],
			[483, 484, 485],
			[486, 487, 488],
			[489, 490, 491],
			[492, 493, 494],
			[495, 496, 497],
			[498, 499, 500],
			[501, 502, 503],
			[504, 505, 506],
			[507, 508, 509],
			[510, 511, 512],
			[513, 514, 515],
			[516, 517, 518],
			[519, 520, 521],
			[522, 523, 524],
			[525, 526, 527],
			[528, 529, 530],
			[531, 532, 533],
			[534, 535, 536],
			[537, 538, 539],
			[540, 541, 542],
			[543, 544, 545],
			[546, 547, 548],
			[549, 550, 551],
			[552, 553, 554],
			[555, 556, 557],
			[558, 559, 560],
			[561, 562, 563],
			[564, 565, 566],
			[567, 568, 569],
			[570, 571, 572],
			[573, 574, 575],
			[576, 577, 578],
			[579, 580, 581],
			[582, 583, 584],
			[585, 586, 587],
			[588, 589, 590],
			[591, 592, 593],
			[594, 595, 596],
			[597, 598, 599],
			[600, 601, 602],
			[603, 604, 605],
			[606, 607, 608],
			[609, 610, 611],
			[612, 613, 614],
			[615, 616, 617],
			[618, 619, 620],
			[621, 622, 623],
			[624, 625, 626],
			[627, 628, 629],
			[630, 631, 632],
			[633, 634, 635],
			[636, 637, 638],
			[639, 640, 641],
			[642, 643, 644],
			[645, 646, 647],
			[648, 649, 650],
			[651, 652, 653],
			[654, 655, 656],
			[657, 658, 659],
			[660, 661, 662],
			[663, 664, 665],
			[666, 667, 668],
			[669, 670, 671],
			[672, 673, 674],
			[675, 676, 677],
			[678, 679, 680],
			[681, 682, 683],
			[684, 685, 686],
			[687, 688, 689],
			[690, 691, 692],
			[693, 694, 695],
			[696, 697, 698],
			[699, 700, 701],
			[702, 703, 704],
			[705, 706, 707],
			[708, 709, 710],
			[711, 712, 713],
			[714, 715, 716],
			[717, 718, 719],
			[720, 721, 722],
			[723, 724, 725],
			[726, 727, 728],
			[729, 730, 731]
		]
	);
}


Default();
